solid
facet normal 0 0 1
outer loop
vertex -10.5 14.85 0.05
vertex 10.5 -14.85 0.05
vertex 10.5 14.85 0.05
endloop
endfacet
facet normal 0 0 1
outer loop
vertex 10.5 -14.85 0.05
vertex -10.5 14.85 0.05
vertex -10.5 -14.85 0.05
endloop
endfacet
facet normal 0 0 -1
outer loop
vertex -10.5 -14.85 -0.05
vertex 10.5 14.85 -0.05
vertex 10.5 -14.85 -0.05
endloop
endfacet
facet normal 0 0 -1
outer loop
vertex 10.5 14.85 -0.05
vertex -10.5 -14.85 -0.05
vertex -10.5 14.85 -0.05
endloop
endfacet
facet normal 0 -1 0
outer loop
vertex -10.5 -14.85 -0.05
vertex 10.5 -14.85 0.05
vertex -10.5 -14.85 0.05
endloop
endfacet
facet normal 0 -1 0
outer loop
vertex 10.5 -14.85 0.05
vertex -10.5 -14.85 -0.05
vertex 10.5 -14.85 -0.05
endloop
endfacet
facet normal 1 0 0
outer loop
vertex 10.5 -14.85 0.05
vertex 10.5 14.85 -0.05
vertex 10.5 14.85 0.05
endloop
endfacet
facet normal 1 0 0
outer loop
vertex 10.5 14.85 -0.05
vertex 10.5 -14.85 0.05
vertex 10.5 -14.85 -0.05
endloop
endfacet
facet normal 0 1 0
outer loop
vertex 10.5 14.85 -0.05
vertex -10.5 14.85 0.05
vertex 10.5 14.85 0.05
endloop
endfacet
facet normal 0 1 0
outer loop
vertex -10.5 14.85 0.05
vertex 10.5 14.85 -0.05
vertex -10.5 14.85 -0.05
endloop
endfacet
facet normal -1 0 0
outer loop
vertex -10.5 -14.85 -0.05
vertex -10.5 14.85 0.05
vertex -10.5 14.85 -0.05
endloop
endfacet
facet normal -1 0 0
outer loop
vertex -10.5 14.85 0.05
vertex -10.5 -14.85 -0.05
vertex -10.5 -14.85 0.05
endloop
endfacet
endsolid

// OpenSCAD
/* menu_card.scad 
 * 
 * just an A4-paper sized cube, so that we can make
 * a Collada and put a texture on it... Gazebo 7+
 * doesn't support textures on STLs anymore.
 *
 * Dimensions are in millimeters, scale 0.001 for ROS.
 * Origin is at the center.
 */
 
 
card_A4();


module card_A4() { menu_card(); }

module card_A6() { menu_card( w=10.5, h=14.9, d=0.1 ); }

 
module menu_card(
  w = 21.0,
  h = 29.7,
  d = 0.1
  )
{
  cube( size=[w,h,d], center=true );
}
